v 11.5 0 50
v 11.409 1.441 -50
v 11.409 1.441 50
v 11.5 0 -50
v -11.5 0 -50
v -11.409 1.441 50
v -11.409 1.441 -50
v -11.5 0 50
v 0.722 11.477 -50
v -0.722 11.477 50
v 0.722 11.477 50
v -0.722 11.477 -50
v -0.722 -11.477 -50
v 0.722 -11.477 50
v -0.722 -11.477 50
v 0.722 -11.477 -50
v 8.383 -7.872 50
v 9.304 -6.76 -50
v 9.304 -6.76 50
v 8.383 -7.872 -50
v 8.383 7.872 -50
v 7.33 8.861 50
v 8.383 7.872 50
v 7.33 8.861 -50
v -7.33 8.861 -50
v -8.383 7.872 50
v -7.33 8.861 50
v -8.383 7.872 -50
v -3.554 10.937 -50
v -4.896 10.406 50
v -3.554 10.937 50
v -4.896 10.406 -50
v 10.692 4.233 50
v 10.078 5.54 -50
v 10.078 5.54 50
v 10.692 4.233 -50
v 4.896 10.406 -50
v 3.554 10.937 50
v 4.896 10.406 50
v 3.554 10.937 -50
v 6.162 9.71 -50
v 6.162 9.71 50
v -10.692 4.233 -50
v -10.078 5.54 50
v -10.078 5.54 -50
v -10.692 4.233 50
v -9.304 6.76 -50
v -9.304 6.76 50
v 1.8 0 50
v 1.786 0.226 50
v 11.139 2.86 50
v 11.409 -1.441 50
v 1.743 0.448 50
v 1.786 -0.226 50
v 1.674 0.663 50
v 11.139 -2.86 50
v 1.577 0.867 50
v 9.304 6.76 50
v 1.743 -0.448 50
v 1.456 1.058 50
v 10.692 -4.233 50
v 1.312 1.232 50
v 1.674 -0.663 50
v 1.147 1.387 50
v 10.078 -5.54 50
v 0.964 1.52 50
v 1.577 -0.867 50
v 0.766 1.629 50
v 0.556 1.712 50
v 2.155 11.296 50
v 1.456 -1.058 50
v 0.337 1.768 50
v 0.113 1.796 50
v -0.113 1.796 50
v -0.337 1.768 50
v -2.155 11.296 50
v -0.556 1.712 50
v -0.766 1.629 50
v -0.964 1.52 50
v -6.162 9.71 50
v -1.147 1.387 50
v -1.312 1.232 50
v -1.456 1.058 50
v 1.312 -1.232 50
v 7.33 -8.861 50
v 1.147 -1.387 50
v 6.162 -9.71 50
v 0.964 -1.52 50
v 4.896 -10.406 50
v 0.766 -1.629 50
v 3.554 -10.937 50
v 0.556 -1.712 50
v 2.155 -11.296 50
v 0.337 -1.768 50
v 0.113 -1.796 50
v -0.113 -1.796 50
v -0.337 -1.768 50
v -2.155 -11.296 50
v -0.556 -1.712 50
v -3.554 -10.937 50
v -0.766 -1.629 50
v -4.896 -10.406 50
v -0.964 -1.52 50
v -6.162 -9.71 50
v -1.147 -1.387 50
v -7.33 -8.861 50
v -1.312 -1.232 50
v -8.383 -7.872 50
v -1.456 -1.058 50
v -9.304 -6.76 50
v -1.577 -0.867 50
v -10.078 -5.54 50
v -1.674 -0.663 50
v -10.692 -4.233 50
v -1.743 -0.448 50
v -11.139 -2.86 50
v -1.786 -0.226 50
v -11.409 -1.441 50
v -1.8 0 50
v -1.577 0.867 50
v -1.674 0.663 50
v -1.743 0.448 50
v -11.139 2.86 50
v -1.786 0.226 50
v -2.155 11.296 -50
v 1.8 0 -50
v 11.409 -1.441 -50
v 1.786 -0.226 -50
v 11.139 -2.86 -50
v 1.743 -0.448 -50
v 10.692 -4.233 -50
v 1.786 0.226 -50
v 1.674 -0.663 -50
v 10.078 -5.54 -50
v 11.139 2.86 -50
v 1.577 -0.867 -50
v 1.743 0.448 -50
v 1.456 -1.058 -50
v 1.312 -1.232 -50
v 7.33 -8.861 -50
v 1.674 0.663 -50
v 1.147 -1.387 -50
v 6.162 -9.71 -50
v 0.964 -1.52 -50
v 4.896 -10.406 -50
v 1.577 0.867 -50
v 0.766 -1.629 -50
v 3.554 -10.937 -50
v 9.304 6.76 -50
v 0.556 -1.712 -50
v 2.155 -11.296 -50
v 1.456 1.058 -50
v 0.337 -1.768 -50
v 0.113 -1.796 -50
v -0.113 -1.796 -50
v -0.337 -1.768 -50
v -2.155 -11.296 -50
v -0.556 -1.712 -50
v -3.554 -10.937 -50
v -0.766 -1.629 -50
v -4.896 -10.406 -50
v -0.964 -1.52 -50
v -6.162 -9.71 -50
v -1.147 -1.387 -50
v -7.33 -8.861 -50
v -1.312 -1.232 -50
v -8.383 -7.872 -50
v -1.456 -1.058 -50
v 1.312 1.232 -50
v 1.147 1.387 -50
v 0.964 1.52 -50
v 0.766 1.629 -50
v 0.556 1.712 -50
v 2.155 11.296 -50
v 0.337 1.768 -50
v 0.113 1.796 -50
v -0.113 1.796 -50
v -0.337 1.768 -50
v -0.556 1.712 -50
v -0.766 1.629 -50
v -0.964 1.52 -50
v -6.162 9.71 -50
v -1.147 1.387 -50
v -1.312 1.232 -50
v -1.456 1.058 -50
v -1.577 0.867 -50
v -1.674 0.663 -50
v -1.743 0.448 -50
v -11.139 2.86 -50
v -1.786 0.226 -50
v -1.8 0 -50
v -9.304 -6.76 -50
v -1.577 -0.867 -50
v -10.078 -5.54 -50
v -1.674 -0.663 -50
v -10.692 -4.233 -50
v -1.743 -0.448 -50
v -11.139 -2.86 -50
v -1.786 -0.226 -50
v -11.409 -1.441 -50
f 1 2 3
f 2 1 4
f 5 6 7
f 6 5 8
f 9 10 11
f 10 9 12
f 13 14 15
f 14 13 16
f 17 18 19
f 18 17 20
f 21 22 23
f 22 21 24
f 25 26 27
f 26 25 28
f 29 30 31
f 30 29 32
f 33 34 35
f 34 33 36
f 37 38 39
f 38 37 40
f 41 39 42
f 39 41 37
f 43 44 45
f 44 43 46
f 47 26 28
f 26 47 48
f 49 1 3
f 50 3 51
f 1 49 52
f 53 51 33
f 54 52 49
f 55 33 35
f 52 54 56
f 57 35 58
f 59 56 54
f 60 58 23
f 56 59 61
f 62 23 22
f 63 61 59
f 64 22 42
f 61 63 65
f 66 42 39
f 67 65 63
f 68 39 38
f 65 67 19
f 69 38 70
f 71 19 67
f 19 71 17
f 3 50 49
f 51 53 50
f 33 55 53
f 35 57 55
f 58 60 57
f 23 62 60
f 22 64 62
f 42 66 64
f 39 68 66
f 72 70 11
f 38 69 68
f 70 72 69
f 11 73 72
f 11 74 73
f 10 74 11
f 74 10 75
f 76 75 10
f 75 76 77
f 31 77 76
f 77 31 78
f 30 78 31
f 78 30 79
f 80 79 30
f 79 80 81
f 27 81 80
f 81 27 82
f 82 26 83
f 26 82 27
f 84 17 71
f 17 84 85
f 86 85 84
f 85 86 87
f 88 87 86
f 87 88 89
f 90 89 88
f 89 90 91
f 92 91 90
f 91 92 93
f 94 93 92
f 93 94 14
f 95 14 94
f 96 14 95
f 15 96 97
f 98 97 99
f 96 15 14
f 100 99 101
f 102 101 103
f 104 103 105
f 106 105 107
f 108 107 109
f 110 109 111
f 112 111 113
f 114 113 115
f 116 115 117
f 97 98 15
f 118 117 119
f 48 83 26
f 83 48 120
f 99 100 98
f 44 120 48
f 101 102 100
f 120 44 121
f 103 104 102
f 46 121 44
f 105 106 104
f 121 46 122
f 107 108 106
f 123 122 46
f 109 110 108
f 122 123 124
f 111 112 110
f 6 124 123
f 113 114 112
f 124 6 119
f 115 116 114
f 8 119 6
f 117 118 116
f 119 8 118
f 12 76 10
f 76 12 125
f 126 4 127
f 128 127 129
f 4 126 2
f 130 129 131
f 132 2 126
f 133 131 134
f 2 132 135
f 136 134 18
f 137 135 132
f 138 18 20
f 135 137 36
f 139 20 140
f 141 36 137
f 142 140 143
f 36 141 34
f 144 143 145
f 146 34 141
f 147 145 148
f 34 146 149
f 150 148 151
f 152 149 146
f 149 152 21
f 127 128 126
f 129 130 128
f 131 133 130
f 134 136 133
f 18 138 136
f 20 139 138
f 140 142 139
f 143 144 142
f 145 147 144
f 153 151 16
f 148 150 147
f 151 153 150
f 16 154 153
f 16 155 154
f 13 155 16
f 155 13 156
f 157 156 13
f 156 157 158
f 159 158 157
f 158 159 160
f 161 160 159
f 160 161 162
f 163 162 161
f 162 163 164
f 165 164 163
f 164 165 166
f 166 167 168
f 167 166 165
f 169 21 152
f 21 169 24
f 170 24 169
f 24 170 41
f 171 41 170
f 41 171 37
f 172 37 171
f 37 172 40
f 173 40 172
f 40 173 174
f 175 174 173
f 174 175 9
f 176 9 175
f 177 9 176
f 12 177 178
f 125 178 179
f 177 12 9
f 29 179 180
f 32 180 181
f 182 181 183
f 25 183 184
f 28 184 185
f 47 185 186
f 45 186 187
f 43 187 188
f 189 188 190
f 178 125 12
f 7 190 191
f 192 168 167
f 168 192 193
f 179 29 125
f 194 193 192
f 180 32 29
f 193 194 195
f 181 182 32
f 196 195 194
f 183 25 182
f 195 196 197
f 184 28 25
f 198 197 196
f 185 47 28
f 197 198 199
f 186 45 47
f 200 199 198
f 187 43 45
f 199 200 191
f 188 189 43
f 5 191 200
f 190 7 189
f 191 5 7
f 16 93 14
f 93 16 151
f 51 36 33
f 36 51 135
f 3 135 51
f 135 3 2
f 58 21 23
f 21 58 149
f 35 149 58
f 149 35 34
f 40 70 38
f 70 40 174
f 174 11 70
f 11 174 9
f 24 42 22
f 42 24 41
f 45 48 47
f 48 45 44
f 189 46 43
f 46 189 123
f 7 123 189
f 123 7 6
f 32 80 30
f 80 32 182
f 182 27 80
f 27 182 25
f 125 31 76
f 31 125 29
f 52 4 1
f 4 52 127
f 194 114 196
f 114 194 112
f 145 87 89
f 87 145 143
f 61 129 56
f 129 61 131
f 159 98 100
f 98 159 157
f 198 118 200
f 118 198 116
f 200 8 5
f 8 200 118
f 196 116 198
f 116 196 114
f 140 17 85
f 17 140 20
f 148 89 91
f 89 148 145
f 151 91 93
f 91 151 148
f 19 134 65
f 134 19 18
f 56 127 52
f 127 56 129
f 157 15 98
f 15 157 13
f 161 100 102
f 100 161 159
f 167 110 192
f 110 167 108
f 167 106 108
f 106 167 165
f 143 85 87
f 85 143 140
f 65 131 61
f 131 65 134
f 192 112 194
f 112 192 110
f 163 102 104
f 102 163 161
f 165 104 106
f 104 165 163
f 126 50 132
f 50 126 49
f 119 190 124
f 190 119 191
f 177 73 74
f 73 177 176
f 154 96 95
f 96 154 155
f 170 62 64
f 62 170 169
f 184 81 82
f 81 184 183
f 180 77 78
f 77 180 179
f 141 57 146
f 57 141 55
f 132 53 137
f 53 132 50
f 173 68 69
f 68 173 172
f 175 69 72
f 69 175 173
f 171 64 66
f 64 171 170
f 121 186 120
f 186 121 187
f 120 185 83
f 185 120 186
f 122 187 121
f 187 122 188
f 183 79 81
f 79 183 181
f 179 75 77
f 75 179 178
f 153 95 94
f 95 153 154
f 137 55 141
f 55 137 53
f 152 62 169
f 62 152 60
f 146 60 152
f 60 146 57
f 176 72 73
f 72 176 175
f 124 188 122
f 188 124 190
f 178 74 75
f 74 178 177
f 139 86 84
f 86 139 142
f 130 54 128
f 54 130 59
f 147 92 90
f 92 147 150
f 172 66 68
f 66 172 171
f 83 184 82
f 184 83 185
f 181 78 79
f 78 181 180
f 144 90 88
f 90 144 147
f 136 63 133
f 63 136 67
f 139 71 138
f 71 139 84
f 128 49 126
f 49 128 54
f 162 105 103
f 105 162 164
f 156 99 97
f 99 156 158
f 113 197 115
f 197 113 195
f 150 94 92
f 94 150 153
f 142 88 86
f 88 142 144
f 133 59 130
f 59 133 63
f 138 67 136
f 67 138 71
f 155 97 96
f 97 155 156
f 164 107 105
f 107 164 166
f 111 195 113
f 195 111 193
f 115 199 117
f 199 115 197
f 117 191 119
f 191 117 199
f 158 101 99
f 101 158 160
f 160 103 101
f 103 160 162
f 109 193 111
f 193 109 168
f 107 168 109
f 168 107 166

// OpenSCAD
$fn = 50;


difference() {
	union() {
		translate(v = [0, 0, -50.0000000000]) {
			cylinder(h = 100, r = 11.5000000000);
		}
	}
	union() {
		translate(v = [0, 0, -100.0000000000]) {
			cylinder(h = 200, r = 1.8000000000);
		}
	}
}
